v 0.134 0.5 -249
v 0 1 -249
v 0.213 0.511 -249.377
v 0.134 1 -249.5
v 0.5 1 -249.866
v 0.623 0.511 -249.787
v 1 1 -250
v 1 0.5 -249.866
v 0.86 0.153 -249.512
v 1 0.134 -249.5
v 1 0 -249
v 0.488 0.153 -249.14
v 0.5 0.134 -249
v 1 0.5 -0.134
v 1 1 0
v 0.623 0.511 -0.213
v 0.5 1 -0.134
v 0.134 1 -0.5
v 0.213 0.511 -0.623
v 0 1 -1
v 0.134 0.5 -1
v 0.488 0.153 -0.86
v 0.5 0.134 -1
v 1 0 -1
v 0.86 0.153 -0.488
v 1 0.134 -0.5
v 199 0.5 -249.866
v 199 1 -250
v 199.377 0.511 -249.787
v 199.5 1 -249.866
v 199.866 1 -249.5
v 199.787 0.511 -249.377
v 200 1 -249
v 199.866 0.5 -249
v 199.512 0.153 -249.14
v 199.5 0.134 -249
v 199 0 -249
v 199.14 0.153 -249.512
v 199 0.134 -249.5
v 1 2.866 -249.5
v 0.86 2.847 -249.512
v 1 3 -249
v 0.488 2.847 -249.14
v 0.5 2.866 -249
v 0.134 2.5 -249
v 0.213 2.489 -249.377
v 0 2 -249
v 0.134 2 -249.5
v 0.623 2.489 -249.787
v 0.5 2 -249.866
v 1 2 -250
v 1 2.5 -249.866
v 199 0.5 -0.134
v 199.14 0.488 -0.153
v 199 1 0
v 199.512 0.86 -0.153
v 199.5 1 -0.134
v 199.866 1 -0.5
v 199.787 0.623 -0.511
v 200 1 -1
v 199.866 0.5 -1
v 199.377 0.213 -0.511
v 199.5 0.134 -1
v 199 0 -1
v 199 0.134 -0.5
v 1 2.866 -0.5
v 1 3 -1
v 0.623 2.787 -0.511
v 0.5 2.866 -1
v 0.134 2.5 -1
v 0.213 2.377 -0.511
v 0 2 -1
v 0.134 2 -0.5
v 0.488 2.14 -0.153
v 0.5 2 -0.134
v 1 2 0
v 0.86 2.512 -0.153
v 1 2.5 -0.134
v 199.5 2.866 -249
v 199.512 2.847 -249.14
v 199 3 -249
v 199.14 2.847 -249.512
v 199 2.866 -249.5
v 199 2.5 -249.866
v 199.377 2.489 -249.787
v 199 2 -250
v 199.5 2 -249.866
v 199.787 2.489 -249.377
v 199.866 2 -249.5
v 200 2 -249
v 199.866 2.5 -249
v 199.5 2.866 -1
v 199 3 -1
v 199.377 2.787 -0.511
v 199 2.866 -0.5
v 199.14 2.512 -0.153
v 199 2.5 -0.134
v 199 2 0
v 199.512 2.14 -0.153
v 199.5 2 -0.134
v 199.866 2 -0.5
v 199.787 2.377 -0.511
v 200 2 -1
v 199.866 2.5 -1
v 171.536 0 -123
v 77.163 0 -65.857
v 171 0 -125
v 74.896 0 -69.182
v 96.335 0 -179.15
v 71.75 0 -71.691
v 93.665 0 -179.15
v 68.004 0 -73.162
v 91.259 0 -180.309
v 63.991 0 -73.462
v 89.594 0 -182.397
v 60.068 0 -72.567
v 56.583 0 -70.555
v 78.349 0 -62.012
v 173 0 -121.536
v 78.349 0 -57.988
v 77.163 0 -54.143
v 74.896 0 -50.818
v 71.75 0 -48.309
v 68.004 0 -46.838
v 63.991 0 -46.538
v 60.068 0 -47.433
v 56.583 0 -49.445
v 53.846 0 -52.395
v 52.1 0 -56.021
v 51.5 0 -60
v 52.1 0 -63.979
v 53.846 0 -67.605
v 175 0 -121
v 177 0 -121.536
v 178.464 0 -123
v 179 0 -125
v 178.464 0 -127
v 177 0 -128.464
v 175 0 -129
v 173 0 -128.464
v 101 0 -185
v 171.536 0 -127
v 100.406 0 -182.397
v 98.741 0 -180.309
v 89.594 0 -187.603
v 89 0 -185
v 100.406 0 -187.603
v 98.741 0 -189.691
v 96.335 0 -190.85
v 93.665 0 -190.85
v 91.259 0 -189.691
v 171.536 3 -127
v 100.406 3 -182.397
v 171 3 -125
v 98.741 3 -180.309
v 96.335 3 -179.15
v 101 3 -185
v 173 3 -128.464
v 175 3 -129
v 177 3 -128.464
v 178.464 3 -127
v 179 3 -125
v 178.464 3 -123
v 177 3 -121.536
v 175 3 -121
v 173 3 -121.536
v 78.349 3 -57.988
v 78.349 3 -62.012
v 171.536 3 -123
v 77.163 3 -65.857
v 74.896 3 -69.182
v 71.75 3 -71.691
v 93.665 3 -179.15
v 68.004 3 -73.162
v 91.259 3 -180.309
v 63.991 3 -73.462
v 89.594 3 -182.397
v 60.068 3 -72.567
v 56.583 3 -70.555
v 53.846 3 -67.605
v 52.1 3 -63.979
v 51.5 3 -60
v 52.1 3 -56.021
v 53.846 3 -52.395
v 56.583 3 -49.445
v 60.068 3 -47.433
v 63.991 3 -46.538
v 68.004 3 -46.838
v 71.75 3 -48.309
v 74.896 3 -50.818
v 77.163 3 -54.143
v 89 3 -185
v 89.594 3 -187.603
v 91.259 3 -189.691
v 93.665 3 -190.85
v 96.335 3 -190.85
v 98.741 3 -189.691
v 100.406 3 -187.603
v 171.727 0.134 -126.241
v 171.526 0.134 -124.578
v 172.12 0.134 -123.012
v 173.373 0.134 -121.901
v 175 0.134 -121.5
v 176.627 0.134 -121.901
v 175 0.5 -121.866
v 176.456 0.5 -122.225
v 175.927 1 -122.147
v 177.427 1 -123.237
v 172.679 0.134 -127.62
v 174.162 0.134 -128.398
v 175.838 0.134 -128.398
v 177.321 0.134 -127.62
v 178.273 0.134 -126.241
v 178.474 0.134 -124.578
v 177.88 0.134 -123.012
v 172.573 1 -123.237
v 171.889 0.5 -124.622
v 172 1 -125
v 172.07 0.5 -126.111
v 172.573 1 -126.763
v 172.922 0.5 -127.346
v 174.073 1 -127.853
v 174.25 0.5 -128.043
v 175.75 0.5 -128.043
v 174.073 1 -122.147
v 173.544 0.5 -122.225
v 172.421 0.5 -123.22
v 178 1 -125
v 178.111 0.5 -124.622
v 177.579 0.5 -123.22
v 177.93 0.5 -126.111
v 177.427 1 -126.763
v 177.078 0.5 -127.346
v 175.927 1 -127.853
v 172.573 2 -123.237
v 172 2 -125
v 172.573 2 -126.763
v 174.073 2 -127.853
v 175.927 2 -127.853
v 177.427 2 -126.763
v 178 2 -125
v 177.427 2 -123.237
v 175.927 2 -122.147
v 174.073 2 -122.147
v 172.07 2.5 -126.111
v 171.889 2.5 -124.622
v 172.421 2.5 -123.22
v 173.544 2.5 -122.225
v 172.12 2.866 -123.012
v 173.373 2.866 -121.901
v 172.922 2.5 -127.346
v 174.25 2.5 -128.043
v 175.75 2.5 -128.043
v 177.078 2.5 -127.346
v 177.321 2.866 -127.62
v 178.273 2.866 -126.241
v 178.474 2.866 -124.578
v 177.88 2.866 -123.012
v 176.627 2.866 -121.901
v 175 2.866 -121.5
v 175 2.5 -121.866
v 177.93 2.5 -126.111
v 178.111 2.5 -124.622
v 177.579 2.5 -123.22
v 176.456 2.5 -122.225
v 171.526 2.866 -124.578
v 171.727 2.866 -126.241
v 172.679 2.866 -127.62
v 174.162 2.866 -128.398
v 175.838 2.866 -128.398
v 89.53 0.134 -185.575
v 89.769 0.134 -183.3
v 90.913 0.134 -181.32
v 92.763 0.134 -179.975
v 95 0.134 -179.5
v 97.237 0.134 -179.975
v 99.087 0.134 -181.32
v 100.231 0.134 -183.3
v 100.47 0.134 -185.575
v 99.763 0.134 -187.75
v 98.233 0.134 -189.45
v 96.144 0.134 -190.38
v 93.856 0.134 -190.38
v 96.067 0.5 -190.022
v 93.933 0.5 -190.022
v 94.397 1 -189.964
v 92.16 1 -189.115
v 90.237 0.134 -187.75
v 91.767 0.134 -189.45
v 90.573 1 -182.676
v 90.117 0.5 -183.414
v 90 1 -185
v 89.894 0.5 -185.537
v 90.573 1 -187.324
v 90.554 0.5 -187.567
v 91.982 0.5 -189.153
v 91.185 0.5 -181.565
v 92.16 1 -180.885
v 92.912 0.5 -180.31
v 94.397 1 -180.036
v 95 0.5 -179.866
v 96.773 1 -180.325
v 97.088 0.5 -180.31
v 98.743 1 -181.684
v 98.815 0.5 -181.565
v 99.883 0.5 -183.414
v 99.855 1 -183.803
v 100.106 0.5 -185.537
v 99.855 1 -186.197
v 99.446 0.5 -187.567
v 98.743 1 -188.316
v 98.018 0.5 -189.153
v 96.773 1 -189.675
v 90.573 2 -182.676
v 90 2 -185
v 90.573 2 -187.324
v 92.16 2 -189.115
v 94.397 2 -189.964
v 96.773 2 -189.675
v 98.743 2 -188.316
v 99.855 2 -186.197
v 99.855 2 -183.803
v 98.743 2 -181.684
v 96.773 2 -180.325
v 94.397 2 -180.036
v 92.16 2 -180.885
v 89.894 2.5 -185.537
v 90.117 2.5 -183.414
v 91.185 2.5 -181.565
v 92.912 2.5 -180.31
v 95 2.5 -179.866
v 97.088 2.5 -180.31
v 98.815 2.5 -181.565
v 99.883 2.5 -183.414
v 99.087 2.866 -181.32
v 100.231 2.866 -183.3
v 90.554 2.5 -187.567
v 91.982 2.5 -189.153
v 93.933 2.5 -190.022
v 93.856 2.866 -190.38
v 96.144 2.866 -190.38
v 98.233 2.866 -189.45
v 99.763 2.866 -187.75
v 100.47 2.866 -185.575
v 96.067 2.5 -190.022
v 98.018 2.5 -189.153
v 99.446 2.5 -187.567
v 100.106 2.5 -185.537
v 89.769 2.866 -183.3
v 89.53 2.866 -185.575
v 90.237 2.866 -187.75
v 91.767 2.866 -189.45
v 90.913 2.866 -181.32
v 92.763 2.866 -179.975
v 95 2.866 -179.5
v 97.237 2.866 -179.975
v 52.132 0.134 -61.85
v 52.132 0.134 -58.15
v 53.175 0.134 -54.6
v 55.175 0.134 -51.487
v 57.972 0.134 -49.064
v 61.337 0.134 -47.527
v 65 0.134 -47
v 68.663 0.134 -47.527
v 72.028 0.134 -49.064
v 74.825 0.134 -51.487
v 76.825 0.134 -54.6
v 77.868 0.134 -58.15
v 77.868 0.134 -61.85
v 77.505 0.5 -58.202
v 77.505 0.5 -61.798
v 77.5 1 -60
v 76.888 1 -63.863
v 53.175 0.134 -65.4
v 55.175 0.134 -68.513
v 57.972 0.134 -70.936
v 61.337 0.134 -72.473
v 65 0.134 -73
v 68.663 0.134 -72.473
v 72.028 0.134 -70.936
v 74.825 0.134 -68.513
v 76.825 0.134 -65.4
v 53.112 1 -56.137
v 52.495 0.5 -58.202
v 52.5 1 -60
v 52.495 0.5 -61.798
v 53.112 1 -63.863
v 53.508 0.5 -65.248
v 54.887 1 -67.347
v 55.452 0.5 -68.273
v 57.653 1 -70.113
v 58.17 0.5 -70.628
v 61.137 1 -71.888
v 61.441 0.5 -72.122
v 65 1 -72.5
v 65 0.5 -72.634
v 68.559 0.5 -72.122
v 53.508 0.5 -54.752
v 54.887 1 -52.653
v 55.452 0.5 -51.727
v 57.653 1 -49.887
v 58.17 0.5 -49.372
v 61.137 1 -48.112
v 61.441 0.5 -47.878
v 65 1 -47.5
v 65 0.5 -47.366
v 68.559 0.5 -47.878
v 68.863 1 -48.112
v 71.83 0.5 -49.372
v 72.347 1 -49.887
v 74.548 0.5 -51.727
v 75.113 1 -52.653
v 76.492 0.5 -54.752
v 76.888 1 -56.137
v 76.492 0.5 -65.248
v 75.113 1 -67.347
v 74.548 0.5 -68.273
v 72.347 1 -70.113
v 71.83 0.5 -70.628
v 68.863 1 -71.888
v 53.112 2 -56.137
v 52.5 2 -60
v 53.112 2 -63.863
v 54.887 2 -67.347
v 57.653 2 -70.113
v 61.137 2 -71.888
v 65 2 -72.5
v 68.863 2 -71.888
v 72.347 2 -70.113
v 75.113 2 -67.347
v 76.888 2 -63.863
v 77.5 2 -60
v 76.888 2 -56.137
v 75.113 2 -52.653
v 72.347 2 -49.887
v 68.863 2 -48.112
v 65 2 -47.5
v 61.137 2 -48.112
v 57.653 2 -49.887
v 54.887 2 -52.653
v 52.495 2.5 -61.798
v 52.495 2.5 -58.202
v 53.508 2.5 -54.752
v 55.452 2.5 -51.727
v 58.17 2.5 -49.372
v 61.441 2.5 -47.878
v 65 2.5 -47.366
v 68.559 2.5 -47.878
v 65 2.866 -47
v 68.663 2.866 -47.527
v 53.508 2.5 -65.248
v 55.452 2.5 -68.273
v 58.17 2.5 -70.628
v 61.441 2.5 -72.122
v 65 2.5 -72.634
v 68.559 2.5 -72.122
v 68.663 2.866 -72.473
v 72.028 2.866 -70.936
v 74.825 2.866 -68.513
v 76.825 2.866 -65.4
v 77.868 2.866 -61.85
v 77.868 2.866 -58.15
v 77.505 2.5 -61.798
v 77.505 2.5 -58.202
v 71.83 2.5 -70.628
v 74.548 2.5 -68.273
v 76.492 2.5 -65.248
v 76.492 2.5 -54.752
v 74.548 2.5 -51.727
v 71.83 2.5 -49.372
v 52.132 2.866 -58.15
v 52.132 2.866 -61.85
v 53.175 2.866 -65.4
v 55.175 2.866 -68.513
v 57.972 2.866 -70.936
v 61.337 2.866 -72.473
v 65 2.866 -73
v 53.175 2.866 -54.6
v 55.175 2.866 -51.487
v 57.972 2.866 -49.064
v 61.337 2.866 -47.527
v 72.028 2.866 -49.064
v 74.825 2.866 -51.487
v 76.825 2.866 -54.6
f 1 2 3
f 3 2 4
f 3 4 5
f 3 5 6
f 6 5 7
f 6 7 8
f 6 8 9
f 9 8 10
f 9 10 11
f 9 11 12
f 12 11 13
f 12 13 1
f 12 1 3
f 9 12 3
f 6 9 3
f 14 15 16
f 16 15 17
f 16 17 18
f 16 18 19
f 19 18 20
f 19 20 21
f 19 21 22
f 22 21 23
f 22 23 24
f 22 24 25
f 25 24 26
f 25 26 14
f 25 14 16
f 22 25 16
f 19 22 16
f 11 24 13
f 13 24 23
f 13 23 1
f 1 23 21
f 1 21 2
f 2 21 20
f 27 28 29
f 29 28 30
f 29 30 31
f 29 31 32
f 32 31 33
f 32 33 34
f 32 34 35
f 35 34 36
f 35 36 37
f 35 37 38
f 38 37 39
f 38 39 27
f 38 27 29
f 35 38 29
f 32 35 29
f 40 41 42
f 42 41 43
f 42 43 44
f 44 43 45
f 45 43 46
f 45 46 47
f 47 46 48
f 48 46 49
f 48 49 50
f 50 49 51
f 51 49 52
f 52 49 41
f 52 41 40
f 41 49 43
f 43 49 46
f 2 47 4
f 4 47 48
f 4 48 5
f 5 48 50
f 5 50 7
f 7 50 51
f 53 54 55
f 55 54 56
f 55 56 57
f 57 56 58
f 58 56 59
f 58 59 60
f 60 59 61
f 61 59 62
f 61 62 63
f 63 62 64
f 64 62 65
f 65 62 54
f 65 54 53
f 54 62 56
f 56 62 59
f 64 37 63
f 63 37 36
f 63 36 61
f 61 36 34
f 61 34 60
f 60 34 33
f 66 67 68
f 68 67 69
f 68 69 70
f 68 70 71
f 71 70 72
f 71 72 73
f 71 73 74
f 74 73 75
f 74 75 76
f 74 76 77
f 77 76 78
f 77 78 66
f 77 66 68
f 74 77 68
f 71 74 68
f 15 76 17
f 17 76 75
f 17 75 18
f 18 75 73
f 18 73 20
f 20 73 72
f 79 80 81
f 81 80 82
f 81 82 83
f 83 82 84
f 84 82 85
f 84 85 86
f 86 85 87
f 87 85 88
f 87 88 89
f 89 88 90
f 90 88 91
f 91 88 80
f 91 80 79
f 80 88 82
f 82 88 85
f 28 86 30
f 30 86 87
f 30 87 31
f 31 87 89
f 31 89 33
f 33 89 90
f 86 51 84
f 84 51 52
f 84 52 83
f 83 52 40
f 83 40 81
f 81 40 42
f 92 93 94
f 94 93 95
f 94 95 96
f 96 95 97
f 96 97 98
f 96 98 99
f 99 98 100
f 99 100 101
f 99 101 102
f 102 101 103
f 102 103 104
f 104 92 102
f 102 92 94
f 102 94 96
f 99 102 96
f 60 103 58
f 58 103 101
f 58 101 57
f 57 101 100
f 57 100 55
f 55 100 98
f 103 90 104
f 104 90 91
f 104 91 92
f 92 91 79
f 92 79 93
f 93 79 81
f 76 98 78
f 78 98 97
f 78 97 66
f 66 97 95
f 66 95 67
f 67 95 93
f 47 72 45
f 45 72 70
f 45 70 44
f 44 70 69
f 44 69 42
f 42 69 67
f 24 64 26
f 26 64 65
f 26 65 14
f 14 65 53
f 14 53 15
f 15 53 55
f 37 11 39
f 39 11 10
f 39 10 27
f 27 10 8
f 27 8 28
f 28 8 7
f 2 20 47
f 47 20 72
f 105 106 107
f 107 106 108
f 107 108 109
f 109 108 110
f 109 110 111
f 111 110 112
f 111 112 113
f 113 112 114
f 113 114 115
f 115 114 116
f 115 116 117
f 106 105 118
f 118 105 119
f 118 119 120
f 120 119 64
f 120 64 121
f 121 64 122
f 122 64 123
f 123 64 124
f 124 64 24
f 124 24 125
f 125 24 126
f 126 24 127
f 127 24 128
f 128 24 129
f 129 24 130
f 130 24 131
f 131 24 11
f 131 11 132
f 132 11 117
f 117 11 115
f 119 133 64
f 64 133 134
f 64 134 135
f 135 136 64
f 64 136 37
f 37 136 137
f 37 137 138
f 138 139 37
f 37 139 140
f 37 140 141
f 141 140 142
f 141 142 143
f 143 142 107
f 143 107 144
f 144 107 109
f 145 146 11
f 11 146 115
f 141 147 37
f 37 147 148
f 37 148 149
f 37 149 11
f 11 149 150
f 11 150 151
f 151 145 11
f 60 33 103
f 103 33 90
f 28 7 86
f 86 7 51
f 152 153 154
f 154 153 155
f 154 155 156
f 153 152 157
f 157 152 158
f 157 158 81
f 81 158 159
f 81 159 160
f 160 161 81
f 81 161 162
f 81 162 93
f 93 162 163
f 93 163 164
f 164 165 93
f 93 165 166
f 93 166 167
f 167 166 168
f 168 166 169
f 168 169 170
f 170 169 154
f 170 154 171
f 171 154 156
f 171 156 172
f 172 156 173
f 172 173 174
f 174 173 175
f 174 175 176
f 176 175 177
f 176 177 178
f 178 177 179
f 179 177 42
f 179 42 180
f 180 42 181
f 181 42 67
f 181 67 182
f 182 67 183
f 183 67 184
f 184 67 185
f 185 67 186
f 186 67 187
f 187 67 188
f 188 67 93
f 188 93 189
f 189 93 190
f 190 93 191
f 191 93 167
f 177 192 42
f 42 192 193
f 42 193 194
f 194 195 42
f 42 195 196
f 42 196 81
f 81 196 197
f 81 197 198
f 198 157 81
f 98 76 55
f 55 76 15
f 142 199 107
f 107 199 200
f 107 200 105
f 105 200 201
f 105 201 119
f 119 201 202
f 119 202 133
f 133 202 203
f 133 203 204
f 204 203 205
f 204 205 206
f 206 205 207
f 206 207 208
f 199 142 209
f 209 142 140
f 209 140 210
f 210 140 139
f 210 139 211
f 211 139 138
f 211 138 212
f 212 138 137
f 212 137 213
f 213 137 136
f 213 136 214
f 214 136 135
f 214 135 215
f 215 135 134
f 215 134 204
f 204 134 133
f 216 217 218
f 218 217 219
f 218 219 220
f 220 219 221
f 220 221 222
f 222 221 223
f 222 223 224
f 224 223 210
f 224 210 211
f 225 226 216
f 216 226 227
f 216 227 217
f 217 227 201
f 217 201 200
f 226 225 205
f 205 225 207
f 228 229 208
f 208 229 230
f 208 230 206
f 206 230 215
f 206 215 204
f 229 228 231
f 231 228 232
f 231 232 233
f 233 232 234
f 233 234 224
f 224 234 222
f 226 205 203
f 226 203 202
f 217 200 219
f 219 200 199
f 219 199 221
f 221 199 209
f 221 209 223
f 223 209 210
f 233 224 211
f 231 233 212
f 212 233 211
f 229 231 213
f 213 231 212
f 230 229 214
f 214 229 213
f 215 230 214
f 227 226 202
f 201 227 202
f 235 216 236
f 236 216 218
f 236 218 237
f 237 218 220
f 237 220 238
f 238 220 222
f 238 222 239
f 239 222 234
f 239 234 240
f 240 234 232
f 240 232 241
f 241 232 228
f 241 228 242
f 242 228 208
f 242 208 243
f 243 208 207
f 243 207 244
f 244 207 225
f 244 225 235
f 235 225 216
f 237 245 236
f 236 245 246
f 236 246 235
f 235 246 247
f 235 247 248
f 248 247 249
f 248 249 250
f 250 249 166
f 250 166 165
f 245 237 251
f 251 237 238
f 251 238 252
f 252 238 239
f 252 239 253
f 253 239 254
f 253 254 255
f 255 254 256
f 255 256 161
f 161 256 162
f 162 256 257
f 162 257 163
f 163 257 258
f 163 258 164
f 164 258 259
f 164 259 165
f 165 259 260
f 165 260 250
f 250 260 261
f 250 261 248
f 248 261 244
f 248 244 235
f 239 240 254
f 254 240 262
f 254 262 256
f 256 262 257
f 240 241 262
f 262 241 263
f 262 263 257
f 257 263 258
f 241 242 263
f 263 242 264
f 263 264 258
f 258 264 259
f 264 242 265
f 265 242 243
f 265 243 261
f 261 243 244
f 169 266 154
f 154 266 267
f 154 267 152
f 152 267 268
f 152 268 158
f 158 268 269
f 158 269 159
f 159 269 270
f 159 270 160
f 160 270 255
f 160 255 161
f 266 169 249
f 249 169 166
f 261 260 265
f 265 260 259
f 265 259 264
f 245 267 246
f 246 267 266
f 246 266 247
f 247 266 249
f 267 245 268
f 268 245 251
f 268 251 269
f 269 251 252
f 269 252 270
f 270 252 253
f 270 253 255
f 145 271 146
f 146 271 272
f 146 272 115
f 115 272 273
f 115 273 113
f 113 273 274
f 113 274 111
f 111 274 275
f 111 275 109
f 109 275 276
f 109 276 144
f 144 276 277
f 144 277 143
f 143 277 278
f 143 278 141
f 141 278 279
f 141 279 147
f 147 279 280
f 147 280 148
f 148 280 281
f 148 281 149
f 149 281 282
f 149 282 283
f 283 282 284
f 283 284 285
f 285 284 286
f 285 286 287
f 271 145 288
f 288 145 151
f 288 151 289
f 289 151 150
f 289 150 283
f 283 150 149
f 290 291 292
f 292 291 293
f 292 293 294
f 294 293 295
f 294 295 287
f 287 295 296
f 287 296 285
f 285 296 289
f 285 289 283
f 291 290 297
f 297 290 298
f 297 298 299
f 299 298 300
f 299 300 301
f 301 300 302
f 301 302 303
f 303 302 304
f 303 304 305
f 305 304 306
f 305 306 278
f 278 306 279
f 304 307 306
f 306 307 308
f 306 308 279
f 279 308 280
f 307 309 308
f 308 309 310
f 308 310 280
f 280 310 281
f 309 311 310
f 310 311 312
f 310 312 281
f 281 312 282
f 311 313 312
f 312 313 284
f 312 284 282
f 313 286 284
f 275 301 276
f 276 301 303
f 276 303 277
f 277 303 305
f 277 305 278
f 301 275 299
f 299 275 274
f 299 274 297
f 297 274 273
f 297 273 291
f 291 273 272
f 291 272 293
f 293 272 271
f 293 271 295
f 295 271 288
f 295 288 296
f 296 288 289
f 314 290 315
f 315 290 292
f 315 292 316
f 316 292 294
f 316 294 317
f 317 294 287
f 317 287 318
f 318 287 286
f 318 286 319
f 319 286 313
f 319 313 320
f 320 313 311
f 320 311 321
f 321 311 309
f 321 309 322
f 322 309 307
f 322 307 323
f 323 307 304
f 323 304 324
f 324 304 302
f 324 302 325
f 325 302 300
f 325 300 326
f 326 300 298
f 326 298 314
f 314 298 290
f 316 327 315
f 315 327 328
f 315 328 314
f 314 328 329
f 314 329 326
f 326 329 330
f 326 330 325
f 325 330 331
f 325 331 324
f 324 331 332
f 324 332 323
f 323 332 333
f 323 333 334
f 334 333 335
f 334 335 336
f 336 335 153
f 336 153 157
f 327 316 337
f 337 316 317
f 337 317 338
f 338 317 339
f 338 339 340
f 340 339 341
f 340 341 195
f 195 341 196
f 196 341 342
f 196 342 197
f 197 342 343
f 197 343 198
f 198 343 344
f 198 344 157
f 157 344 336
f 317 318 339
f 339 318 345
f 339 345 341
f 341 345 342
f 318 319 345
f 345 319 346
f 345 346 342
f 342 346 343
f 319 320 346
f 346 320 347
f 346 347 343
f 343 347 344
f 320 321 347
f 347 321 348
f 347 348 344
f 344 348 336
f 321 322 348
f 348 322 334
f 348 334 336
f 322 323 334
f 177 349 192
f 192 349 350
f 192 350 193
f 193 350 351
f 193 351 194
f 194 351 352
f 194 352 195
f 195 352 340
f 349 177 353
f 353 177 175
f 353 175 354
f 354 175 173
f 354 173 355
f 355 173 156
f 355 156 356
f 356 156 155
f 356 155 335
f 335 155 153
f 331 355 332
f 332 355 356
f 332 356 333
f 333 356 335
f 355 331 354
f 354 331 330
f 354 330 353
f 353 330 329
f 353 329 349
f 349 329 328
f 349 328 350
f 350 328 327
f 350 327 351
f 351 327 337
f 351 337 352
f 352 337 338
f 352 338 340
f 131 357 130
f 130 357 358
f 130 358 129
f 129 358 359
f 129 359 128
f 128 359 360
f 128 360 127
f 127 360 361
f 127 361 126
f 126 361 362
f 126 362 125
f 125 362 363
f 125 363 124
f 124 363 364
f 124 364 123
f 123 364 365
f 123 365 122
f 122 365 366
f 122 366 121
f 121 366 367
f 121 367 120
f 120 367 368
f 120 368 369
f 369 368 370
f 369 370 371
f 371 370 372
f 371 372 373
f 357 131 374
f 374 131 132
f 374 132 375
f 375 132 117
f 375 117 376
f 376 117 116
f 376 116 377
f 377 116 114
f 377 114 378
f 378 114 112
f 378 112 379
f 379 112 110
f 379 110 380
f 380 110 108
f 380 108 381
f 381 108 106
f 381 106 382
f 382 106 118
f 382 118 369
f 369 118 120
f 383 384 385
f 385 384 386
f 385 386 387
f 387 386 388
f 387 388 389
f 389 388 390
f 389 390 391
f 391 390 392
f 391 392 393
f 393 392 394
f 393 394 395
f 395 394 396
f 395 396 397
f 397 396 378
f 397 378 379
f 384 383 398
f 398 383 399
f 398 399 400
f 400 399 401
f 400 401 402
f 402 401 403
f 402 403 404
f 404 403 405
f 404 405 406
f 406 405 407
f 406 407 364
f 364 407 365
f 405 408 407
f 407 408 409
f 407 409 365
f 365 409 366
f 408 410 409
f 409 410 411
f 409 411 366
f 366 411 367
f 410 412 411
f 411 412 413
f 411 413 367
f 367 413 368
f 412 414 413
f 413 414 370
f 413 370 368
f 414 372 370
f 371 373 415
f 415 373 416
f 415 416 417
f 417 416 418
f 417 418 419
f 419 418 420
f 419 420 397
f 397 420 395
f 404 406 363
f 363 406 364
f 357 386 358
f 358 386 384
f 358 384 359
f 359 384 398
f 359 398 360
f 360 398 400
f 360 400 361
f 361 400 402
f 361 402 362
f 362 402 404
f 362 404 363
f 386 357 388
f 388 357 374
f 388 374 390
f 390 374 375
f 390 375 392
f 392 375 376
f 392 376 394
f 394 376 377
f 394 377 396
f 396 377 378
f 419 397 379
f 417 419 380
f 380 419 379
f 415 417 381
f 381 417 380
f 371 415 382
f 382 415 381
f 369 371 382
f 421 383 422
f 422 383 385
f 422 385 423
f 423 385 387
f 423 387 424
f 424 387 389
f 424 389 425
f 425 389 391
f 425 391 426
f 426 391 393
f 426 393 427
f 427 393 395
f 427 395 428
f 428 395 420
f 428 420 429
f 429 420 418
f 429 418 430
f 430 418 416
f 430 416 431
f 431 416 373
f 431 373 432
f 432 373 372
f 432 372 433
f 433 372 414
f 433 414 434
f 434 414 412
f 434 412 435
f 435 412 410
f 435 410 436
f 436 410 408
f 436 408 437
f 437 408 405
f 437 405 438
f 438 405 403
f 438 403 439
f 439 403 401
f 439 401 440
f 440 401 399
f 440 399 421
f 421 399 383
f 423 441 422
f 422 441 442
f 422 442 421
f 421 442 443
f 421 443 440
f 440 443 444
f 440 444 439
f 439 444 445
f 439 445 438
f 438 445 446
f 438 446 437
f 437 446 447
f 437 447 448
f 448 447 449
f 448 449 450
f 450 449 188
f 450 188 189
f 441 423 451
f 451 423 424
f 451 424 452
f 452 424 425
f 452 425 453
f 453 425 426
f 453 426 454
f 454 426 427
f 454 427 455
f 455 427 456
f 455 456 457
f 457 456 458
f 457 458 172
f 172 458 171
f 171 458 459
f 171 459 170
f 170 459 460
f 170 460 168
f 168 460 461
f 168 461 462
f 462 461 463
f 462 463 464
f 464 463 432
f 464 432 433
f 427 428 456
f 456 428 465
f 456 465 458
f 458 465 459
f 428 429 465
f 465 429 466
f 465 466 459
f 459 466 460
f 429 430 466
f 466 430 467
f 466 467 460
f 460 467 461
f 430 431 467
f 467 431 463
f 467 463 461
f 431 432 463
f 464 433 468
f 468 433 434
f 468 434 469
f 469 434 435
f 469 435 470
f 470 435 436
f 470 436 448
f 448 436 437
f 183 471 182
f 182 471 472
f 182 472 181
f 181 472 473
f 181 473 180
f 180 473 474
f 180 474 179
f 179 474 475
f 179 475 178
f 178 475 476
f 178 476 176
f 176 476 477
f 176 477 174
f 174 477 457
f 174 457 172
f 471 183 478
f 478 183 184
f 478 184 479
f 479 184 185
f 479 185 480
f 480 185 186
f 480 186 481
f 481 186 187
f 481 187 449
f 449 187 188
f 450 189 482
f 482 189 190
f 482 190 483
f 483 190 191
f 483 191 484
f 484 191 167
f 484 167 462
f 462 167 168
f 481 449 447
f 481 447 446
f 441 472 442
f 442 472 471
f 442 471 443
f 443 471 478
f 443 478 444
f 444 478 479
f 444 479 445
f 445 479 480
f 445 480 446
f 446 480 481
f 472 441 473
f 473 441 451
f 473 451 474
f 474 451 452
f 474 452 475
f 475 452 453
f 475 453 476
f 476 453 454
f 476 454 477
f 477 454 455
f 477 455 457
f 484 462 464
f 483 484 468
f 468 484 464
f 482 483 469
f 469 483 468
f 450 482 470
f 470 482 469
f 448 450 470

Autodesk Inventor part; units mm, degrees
ref_plane "YZ Plane" through (0, 0, 0) normal (1, 0, 0) x (0, 1, 0)
ref_plane "XZ Plane" through (0, 0, 0) normal (0, 1, 0) x (-1, 0, 0)
ref_plane "XY Plane" through (0, 0, 0) normal (0, 0, 1) x (1, 0, 0)
sketch "page_lines" plane through (0, 0, 0) normal (0, 1, 0) x (-1, 0, 0)
  line L0 (0, 0) -> (-200, 0)
  line L1 (-200, 0) -> (-200, -250)
  line L2 (-200, -250) -> (0, -250)
  line L3 (0, -250) -> (0, 0)
  circle A0 centre (-65, -60) radius 6
  circle A1 centre (-125, -80) radius 6
  circle A2 centre (-65, -60) radius 12.5
  circle A3 centre (-65, -60) radius 8.5
  circle A4 centre (-125, -80) radius 8.5
  circle A5 centre (-125, -80) radius 12.5
  circle A6 centre (-175, -125) radius 3
  line L4 (-175, -125) -> (-175, -209)
  line L5 (-175, -125) -> (-91, -125) construction
  circle A7 centre (-175, -139) radius 3
  circle A8 centre (-175, -153) radius 3
  circle A9 centre (-175, -167) radius 3
  circle A10 centre (-175, -181) radius 3
  circle A11 centre (-175, -195) radius 3
  circle A12 centre (-175, -209) radius 3
  circle A13 centre (-95, -185) radius 2.5
  circle A14 centre (-95, -185) radius 5
  point P0 (-200, -125)
  dimension "d0" = 200
  dimension "d1" = 250
  dimension "d2" = 12
  dimension "d3" = 12
  dimension "d4" = 25
  dimension "d5" = 17
  dimension "d6" = 17
  dimension "d7" = 25
  dimension "d8" = 75
  dimension "d9" = 80
  dimension "d10" = 65
  dimension "d11" = 60
  dimension "d12" = 6
  dimension "d13" = 84
  dimension "d14" = 90
  dimension "d15" = 25
  dimension "d16" = 125
  dimension "d19" = 14
  dimension "d24" = 5
  dimension "d25" = 10
  dimension "d26" = 65
  dimension "d27" = 95
extrude "not" add sketch "page_lines" along normal blind 3 contours L3 L2 L1 L0 | A1 | A4 | A5 | A7 L4 | L4 A7 | A8 L4 | L4 A8 | A9 L4 | L4 A9 | A10 L4 | L4 A10 | A11 L4 | L4 A11 | A12
fillet "Fillet1" radius 1 18 edges at (77.5, 3, -60) (77.5, 0, -60) (100, 3, -185) (100, 0, -185) (178, 3, -125) (178, 0, -125) (200, 3, -125) (200, 0, -125) (100, 0, 0) (100, 3, 0) (200, 1.5, 0) (0, 1.5, 0) (0, 3, -125) (0, 0, -125) (0, 1.5, -250) (100, 3, -250) (100, 0, -250) (200, 1.5, -250)
properties part number "pages_not"
